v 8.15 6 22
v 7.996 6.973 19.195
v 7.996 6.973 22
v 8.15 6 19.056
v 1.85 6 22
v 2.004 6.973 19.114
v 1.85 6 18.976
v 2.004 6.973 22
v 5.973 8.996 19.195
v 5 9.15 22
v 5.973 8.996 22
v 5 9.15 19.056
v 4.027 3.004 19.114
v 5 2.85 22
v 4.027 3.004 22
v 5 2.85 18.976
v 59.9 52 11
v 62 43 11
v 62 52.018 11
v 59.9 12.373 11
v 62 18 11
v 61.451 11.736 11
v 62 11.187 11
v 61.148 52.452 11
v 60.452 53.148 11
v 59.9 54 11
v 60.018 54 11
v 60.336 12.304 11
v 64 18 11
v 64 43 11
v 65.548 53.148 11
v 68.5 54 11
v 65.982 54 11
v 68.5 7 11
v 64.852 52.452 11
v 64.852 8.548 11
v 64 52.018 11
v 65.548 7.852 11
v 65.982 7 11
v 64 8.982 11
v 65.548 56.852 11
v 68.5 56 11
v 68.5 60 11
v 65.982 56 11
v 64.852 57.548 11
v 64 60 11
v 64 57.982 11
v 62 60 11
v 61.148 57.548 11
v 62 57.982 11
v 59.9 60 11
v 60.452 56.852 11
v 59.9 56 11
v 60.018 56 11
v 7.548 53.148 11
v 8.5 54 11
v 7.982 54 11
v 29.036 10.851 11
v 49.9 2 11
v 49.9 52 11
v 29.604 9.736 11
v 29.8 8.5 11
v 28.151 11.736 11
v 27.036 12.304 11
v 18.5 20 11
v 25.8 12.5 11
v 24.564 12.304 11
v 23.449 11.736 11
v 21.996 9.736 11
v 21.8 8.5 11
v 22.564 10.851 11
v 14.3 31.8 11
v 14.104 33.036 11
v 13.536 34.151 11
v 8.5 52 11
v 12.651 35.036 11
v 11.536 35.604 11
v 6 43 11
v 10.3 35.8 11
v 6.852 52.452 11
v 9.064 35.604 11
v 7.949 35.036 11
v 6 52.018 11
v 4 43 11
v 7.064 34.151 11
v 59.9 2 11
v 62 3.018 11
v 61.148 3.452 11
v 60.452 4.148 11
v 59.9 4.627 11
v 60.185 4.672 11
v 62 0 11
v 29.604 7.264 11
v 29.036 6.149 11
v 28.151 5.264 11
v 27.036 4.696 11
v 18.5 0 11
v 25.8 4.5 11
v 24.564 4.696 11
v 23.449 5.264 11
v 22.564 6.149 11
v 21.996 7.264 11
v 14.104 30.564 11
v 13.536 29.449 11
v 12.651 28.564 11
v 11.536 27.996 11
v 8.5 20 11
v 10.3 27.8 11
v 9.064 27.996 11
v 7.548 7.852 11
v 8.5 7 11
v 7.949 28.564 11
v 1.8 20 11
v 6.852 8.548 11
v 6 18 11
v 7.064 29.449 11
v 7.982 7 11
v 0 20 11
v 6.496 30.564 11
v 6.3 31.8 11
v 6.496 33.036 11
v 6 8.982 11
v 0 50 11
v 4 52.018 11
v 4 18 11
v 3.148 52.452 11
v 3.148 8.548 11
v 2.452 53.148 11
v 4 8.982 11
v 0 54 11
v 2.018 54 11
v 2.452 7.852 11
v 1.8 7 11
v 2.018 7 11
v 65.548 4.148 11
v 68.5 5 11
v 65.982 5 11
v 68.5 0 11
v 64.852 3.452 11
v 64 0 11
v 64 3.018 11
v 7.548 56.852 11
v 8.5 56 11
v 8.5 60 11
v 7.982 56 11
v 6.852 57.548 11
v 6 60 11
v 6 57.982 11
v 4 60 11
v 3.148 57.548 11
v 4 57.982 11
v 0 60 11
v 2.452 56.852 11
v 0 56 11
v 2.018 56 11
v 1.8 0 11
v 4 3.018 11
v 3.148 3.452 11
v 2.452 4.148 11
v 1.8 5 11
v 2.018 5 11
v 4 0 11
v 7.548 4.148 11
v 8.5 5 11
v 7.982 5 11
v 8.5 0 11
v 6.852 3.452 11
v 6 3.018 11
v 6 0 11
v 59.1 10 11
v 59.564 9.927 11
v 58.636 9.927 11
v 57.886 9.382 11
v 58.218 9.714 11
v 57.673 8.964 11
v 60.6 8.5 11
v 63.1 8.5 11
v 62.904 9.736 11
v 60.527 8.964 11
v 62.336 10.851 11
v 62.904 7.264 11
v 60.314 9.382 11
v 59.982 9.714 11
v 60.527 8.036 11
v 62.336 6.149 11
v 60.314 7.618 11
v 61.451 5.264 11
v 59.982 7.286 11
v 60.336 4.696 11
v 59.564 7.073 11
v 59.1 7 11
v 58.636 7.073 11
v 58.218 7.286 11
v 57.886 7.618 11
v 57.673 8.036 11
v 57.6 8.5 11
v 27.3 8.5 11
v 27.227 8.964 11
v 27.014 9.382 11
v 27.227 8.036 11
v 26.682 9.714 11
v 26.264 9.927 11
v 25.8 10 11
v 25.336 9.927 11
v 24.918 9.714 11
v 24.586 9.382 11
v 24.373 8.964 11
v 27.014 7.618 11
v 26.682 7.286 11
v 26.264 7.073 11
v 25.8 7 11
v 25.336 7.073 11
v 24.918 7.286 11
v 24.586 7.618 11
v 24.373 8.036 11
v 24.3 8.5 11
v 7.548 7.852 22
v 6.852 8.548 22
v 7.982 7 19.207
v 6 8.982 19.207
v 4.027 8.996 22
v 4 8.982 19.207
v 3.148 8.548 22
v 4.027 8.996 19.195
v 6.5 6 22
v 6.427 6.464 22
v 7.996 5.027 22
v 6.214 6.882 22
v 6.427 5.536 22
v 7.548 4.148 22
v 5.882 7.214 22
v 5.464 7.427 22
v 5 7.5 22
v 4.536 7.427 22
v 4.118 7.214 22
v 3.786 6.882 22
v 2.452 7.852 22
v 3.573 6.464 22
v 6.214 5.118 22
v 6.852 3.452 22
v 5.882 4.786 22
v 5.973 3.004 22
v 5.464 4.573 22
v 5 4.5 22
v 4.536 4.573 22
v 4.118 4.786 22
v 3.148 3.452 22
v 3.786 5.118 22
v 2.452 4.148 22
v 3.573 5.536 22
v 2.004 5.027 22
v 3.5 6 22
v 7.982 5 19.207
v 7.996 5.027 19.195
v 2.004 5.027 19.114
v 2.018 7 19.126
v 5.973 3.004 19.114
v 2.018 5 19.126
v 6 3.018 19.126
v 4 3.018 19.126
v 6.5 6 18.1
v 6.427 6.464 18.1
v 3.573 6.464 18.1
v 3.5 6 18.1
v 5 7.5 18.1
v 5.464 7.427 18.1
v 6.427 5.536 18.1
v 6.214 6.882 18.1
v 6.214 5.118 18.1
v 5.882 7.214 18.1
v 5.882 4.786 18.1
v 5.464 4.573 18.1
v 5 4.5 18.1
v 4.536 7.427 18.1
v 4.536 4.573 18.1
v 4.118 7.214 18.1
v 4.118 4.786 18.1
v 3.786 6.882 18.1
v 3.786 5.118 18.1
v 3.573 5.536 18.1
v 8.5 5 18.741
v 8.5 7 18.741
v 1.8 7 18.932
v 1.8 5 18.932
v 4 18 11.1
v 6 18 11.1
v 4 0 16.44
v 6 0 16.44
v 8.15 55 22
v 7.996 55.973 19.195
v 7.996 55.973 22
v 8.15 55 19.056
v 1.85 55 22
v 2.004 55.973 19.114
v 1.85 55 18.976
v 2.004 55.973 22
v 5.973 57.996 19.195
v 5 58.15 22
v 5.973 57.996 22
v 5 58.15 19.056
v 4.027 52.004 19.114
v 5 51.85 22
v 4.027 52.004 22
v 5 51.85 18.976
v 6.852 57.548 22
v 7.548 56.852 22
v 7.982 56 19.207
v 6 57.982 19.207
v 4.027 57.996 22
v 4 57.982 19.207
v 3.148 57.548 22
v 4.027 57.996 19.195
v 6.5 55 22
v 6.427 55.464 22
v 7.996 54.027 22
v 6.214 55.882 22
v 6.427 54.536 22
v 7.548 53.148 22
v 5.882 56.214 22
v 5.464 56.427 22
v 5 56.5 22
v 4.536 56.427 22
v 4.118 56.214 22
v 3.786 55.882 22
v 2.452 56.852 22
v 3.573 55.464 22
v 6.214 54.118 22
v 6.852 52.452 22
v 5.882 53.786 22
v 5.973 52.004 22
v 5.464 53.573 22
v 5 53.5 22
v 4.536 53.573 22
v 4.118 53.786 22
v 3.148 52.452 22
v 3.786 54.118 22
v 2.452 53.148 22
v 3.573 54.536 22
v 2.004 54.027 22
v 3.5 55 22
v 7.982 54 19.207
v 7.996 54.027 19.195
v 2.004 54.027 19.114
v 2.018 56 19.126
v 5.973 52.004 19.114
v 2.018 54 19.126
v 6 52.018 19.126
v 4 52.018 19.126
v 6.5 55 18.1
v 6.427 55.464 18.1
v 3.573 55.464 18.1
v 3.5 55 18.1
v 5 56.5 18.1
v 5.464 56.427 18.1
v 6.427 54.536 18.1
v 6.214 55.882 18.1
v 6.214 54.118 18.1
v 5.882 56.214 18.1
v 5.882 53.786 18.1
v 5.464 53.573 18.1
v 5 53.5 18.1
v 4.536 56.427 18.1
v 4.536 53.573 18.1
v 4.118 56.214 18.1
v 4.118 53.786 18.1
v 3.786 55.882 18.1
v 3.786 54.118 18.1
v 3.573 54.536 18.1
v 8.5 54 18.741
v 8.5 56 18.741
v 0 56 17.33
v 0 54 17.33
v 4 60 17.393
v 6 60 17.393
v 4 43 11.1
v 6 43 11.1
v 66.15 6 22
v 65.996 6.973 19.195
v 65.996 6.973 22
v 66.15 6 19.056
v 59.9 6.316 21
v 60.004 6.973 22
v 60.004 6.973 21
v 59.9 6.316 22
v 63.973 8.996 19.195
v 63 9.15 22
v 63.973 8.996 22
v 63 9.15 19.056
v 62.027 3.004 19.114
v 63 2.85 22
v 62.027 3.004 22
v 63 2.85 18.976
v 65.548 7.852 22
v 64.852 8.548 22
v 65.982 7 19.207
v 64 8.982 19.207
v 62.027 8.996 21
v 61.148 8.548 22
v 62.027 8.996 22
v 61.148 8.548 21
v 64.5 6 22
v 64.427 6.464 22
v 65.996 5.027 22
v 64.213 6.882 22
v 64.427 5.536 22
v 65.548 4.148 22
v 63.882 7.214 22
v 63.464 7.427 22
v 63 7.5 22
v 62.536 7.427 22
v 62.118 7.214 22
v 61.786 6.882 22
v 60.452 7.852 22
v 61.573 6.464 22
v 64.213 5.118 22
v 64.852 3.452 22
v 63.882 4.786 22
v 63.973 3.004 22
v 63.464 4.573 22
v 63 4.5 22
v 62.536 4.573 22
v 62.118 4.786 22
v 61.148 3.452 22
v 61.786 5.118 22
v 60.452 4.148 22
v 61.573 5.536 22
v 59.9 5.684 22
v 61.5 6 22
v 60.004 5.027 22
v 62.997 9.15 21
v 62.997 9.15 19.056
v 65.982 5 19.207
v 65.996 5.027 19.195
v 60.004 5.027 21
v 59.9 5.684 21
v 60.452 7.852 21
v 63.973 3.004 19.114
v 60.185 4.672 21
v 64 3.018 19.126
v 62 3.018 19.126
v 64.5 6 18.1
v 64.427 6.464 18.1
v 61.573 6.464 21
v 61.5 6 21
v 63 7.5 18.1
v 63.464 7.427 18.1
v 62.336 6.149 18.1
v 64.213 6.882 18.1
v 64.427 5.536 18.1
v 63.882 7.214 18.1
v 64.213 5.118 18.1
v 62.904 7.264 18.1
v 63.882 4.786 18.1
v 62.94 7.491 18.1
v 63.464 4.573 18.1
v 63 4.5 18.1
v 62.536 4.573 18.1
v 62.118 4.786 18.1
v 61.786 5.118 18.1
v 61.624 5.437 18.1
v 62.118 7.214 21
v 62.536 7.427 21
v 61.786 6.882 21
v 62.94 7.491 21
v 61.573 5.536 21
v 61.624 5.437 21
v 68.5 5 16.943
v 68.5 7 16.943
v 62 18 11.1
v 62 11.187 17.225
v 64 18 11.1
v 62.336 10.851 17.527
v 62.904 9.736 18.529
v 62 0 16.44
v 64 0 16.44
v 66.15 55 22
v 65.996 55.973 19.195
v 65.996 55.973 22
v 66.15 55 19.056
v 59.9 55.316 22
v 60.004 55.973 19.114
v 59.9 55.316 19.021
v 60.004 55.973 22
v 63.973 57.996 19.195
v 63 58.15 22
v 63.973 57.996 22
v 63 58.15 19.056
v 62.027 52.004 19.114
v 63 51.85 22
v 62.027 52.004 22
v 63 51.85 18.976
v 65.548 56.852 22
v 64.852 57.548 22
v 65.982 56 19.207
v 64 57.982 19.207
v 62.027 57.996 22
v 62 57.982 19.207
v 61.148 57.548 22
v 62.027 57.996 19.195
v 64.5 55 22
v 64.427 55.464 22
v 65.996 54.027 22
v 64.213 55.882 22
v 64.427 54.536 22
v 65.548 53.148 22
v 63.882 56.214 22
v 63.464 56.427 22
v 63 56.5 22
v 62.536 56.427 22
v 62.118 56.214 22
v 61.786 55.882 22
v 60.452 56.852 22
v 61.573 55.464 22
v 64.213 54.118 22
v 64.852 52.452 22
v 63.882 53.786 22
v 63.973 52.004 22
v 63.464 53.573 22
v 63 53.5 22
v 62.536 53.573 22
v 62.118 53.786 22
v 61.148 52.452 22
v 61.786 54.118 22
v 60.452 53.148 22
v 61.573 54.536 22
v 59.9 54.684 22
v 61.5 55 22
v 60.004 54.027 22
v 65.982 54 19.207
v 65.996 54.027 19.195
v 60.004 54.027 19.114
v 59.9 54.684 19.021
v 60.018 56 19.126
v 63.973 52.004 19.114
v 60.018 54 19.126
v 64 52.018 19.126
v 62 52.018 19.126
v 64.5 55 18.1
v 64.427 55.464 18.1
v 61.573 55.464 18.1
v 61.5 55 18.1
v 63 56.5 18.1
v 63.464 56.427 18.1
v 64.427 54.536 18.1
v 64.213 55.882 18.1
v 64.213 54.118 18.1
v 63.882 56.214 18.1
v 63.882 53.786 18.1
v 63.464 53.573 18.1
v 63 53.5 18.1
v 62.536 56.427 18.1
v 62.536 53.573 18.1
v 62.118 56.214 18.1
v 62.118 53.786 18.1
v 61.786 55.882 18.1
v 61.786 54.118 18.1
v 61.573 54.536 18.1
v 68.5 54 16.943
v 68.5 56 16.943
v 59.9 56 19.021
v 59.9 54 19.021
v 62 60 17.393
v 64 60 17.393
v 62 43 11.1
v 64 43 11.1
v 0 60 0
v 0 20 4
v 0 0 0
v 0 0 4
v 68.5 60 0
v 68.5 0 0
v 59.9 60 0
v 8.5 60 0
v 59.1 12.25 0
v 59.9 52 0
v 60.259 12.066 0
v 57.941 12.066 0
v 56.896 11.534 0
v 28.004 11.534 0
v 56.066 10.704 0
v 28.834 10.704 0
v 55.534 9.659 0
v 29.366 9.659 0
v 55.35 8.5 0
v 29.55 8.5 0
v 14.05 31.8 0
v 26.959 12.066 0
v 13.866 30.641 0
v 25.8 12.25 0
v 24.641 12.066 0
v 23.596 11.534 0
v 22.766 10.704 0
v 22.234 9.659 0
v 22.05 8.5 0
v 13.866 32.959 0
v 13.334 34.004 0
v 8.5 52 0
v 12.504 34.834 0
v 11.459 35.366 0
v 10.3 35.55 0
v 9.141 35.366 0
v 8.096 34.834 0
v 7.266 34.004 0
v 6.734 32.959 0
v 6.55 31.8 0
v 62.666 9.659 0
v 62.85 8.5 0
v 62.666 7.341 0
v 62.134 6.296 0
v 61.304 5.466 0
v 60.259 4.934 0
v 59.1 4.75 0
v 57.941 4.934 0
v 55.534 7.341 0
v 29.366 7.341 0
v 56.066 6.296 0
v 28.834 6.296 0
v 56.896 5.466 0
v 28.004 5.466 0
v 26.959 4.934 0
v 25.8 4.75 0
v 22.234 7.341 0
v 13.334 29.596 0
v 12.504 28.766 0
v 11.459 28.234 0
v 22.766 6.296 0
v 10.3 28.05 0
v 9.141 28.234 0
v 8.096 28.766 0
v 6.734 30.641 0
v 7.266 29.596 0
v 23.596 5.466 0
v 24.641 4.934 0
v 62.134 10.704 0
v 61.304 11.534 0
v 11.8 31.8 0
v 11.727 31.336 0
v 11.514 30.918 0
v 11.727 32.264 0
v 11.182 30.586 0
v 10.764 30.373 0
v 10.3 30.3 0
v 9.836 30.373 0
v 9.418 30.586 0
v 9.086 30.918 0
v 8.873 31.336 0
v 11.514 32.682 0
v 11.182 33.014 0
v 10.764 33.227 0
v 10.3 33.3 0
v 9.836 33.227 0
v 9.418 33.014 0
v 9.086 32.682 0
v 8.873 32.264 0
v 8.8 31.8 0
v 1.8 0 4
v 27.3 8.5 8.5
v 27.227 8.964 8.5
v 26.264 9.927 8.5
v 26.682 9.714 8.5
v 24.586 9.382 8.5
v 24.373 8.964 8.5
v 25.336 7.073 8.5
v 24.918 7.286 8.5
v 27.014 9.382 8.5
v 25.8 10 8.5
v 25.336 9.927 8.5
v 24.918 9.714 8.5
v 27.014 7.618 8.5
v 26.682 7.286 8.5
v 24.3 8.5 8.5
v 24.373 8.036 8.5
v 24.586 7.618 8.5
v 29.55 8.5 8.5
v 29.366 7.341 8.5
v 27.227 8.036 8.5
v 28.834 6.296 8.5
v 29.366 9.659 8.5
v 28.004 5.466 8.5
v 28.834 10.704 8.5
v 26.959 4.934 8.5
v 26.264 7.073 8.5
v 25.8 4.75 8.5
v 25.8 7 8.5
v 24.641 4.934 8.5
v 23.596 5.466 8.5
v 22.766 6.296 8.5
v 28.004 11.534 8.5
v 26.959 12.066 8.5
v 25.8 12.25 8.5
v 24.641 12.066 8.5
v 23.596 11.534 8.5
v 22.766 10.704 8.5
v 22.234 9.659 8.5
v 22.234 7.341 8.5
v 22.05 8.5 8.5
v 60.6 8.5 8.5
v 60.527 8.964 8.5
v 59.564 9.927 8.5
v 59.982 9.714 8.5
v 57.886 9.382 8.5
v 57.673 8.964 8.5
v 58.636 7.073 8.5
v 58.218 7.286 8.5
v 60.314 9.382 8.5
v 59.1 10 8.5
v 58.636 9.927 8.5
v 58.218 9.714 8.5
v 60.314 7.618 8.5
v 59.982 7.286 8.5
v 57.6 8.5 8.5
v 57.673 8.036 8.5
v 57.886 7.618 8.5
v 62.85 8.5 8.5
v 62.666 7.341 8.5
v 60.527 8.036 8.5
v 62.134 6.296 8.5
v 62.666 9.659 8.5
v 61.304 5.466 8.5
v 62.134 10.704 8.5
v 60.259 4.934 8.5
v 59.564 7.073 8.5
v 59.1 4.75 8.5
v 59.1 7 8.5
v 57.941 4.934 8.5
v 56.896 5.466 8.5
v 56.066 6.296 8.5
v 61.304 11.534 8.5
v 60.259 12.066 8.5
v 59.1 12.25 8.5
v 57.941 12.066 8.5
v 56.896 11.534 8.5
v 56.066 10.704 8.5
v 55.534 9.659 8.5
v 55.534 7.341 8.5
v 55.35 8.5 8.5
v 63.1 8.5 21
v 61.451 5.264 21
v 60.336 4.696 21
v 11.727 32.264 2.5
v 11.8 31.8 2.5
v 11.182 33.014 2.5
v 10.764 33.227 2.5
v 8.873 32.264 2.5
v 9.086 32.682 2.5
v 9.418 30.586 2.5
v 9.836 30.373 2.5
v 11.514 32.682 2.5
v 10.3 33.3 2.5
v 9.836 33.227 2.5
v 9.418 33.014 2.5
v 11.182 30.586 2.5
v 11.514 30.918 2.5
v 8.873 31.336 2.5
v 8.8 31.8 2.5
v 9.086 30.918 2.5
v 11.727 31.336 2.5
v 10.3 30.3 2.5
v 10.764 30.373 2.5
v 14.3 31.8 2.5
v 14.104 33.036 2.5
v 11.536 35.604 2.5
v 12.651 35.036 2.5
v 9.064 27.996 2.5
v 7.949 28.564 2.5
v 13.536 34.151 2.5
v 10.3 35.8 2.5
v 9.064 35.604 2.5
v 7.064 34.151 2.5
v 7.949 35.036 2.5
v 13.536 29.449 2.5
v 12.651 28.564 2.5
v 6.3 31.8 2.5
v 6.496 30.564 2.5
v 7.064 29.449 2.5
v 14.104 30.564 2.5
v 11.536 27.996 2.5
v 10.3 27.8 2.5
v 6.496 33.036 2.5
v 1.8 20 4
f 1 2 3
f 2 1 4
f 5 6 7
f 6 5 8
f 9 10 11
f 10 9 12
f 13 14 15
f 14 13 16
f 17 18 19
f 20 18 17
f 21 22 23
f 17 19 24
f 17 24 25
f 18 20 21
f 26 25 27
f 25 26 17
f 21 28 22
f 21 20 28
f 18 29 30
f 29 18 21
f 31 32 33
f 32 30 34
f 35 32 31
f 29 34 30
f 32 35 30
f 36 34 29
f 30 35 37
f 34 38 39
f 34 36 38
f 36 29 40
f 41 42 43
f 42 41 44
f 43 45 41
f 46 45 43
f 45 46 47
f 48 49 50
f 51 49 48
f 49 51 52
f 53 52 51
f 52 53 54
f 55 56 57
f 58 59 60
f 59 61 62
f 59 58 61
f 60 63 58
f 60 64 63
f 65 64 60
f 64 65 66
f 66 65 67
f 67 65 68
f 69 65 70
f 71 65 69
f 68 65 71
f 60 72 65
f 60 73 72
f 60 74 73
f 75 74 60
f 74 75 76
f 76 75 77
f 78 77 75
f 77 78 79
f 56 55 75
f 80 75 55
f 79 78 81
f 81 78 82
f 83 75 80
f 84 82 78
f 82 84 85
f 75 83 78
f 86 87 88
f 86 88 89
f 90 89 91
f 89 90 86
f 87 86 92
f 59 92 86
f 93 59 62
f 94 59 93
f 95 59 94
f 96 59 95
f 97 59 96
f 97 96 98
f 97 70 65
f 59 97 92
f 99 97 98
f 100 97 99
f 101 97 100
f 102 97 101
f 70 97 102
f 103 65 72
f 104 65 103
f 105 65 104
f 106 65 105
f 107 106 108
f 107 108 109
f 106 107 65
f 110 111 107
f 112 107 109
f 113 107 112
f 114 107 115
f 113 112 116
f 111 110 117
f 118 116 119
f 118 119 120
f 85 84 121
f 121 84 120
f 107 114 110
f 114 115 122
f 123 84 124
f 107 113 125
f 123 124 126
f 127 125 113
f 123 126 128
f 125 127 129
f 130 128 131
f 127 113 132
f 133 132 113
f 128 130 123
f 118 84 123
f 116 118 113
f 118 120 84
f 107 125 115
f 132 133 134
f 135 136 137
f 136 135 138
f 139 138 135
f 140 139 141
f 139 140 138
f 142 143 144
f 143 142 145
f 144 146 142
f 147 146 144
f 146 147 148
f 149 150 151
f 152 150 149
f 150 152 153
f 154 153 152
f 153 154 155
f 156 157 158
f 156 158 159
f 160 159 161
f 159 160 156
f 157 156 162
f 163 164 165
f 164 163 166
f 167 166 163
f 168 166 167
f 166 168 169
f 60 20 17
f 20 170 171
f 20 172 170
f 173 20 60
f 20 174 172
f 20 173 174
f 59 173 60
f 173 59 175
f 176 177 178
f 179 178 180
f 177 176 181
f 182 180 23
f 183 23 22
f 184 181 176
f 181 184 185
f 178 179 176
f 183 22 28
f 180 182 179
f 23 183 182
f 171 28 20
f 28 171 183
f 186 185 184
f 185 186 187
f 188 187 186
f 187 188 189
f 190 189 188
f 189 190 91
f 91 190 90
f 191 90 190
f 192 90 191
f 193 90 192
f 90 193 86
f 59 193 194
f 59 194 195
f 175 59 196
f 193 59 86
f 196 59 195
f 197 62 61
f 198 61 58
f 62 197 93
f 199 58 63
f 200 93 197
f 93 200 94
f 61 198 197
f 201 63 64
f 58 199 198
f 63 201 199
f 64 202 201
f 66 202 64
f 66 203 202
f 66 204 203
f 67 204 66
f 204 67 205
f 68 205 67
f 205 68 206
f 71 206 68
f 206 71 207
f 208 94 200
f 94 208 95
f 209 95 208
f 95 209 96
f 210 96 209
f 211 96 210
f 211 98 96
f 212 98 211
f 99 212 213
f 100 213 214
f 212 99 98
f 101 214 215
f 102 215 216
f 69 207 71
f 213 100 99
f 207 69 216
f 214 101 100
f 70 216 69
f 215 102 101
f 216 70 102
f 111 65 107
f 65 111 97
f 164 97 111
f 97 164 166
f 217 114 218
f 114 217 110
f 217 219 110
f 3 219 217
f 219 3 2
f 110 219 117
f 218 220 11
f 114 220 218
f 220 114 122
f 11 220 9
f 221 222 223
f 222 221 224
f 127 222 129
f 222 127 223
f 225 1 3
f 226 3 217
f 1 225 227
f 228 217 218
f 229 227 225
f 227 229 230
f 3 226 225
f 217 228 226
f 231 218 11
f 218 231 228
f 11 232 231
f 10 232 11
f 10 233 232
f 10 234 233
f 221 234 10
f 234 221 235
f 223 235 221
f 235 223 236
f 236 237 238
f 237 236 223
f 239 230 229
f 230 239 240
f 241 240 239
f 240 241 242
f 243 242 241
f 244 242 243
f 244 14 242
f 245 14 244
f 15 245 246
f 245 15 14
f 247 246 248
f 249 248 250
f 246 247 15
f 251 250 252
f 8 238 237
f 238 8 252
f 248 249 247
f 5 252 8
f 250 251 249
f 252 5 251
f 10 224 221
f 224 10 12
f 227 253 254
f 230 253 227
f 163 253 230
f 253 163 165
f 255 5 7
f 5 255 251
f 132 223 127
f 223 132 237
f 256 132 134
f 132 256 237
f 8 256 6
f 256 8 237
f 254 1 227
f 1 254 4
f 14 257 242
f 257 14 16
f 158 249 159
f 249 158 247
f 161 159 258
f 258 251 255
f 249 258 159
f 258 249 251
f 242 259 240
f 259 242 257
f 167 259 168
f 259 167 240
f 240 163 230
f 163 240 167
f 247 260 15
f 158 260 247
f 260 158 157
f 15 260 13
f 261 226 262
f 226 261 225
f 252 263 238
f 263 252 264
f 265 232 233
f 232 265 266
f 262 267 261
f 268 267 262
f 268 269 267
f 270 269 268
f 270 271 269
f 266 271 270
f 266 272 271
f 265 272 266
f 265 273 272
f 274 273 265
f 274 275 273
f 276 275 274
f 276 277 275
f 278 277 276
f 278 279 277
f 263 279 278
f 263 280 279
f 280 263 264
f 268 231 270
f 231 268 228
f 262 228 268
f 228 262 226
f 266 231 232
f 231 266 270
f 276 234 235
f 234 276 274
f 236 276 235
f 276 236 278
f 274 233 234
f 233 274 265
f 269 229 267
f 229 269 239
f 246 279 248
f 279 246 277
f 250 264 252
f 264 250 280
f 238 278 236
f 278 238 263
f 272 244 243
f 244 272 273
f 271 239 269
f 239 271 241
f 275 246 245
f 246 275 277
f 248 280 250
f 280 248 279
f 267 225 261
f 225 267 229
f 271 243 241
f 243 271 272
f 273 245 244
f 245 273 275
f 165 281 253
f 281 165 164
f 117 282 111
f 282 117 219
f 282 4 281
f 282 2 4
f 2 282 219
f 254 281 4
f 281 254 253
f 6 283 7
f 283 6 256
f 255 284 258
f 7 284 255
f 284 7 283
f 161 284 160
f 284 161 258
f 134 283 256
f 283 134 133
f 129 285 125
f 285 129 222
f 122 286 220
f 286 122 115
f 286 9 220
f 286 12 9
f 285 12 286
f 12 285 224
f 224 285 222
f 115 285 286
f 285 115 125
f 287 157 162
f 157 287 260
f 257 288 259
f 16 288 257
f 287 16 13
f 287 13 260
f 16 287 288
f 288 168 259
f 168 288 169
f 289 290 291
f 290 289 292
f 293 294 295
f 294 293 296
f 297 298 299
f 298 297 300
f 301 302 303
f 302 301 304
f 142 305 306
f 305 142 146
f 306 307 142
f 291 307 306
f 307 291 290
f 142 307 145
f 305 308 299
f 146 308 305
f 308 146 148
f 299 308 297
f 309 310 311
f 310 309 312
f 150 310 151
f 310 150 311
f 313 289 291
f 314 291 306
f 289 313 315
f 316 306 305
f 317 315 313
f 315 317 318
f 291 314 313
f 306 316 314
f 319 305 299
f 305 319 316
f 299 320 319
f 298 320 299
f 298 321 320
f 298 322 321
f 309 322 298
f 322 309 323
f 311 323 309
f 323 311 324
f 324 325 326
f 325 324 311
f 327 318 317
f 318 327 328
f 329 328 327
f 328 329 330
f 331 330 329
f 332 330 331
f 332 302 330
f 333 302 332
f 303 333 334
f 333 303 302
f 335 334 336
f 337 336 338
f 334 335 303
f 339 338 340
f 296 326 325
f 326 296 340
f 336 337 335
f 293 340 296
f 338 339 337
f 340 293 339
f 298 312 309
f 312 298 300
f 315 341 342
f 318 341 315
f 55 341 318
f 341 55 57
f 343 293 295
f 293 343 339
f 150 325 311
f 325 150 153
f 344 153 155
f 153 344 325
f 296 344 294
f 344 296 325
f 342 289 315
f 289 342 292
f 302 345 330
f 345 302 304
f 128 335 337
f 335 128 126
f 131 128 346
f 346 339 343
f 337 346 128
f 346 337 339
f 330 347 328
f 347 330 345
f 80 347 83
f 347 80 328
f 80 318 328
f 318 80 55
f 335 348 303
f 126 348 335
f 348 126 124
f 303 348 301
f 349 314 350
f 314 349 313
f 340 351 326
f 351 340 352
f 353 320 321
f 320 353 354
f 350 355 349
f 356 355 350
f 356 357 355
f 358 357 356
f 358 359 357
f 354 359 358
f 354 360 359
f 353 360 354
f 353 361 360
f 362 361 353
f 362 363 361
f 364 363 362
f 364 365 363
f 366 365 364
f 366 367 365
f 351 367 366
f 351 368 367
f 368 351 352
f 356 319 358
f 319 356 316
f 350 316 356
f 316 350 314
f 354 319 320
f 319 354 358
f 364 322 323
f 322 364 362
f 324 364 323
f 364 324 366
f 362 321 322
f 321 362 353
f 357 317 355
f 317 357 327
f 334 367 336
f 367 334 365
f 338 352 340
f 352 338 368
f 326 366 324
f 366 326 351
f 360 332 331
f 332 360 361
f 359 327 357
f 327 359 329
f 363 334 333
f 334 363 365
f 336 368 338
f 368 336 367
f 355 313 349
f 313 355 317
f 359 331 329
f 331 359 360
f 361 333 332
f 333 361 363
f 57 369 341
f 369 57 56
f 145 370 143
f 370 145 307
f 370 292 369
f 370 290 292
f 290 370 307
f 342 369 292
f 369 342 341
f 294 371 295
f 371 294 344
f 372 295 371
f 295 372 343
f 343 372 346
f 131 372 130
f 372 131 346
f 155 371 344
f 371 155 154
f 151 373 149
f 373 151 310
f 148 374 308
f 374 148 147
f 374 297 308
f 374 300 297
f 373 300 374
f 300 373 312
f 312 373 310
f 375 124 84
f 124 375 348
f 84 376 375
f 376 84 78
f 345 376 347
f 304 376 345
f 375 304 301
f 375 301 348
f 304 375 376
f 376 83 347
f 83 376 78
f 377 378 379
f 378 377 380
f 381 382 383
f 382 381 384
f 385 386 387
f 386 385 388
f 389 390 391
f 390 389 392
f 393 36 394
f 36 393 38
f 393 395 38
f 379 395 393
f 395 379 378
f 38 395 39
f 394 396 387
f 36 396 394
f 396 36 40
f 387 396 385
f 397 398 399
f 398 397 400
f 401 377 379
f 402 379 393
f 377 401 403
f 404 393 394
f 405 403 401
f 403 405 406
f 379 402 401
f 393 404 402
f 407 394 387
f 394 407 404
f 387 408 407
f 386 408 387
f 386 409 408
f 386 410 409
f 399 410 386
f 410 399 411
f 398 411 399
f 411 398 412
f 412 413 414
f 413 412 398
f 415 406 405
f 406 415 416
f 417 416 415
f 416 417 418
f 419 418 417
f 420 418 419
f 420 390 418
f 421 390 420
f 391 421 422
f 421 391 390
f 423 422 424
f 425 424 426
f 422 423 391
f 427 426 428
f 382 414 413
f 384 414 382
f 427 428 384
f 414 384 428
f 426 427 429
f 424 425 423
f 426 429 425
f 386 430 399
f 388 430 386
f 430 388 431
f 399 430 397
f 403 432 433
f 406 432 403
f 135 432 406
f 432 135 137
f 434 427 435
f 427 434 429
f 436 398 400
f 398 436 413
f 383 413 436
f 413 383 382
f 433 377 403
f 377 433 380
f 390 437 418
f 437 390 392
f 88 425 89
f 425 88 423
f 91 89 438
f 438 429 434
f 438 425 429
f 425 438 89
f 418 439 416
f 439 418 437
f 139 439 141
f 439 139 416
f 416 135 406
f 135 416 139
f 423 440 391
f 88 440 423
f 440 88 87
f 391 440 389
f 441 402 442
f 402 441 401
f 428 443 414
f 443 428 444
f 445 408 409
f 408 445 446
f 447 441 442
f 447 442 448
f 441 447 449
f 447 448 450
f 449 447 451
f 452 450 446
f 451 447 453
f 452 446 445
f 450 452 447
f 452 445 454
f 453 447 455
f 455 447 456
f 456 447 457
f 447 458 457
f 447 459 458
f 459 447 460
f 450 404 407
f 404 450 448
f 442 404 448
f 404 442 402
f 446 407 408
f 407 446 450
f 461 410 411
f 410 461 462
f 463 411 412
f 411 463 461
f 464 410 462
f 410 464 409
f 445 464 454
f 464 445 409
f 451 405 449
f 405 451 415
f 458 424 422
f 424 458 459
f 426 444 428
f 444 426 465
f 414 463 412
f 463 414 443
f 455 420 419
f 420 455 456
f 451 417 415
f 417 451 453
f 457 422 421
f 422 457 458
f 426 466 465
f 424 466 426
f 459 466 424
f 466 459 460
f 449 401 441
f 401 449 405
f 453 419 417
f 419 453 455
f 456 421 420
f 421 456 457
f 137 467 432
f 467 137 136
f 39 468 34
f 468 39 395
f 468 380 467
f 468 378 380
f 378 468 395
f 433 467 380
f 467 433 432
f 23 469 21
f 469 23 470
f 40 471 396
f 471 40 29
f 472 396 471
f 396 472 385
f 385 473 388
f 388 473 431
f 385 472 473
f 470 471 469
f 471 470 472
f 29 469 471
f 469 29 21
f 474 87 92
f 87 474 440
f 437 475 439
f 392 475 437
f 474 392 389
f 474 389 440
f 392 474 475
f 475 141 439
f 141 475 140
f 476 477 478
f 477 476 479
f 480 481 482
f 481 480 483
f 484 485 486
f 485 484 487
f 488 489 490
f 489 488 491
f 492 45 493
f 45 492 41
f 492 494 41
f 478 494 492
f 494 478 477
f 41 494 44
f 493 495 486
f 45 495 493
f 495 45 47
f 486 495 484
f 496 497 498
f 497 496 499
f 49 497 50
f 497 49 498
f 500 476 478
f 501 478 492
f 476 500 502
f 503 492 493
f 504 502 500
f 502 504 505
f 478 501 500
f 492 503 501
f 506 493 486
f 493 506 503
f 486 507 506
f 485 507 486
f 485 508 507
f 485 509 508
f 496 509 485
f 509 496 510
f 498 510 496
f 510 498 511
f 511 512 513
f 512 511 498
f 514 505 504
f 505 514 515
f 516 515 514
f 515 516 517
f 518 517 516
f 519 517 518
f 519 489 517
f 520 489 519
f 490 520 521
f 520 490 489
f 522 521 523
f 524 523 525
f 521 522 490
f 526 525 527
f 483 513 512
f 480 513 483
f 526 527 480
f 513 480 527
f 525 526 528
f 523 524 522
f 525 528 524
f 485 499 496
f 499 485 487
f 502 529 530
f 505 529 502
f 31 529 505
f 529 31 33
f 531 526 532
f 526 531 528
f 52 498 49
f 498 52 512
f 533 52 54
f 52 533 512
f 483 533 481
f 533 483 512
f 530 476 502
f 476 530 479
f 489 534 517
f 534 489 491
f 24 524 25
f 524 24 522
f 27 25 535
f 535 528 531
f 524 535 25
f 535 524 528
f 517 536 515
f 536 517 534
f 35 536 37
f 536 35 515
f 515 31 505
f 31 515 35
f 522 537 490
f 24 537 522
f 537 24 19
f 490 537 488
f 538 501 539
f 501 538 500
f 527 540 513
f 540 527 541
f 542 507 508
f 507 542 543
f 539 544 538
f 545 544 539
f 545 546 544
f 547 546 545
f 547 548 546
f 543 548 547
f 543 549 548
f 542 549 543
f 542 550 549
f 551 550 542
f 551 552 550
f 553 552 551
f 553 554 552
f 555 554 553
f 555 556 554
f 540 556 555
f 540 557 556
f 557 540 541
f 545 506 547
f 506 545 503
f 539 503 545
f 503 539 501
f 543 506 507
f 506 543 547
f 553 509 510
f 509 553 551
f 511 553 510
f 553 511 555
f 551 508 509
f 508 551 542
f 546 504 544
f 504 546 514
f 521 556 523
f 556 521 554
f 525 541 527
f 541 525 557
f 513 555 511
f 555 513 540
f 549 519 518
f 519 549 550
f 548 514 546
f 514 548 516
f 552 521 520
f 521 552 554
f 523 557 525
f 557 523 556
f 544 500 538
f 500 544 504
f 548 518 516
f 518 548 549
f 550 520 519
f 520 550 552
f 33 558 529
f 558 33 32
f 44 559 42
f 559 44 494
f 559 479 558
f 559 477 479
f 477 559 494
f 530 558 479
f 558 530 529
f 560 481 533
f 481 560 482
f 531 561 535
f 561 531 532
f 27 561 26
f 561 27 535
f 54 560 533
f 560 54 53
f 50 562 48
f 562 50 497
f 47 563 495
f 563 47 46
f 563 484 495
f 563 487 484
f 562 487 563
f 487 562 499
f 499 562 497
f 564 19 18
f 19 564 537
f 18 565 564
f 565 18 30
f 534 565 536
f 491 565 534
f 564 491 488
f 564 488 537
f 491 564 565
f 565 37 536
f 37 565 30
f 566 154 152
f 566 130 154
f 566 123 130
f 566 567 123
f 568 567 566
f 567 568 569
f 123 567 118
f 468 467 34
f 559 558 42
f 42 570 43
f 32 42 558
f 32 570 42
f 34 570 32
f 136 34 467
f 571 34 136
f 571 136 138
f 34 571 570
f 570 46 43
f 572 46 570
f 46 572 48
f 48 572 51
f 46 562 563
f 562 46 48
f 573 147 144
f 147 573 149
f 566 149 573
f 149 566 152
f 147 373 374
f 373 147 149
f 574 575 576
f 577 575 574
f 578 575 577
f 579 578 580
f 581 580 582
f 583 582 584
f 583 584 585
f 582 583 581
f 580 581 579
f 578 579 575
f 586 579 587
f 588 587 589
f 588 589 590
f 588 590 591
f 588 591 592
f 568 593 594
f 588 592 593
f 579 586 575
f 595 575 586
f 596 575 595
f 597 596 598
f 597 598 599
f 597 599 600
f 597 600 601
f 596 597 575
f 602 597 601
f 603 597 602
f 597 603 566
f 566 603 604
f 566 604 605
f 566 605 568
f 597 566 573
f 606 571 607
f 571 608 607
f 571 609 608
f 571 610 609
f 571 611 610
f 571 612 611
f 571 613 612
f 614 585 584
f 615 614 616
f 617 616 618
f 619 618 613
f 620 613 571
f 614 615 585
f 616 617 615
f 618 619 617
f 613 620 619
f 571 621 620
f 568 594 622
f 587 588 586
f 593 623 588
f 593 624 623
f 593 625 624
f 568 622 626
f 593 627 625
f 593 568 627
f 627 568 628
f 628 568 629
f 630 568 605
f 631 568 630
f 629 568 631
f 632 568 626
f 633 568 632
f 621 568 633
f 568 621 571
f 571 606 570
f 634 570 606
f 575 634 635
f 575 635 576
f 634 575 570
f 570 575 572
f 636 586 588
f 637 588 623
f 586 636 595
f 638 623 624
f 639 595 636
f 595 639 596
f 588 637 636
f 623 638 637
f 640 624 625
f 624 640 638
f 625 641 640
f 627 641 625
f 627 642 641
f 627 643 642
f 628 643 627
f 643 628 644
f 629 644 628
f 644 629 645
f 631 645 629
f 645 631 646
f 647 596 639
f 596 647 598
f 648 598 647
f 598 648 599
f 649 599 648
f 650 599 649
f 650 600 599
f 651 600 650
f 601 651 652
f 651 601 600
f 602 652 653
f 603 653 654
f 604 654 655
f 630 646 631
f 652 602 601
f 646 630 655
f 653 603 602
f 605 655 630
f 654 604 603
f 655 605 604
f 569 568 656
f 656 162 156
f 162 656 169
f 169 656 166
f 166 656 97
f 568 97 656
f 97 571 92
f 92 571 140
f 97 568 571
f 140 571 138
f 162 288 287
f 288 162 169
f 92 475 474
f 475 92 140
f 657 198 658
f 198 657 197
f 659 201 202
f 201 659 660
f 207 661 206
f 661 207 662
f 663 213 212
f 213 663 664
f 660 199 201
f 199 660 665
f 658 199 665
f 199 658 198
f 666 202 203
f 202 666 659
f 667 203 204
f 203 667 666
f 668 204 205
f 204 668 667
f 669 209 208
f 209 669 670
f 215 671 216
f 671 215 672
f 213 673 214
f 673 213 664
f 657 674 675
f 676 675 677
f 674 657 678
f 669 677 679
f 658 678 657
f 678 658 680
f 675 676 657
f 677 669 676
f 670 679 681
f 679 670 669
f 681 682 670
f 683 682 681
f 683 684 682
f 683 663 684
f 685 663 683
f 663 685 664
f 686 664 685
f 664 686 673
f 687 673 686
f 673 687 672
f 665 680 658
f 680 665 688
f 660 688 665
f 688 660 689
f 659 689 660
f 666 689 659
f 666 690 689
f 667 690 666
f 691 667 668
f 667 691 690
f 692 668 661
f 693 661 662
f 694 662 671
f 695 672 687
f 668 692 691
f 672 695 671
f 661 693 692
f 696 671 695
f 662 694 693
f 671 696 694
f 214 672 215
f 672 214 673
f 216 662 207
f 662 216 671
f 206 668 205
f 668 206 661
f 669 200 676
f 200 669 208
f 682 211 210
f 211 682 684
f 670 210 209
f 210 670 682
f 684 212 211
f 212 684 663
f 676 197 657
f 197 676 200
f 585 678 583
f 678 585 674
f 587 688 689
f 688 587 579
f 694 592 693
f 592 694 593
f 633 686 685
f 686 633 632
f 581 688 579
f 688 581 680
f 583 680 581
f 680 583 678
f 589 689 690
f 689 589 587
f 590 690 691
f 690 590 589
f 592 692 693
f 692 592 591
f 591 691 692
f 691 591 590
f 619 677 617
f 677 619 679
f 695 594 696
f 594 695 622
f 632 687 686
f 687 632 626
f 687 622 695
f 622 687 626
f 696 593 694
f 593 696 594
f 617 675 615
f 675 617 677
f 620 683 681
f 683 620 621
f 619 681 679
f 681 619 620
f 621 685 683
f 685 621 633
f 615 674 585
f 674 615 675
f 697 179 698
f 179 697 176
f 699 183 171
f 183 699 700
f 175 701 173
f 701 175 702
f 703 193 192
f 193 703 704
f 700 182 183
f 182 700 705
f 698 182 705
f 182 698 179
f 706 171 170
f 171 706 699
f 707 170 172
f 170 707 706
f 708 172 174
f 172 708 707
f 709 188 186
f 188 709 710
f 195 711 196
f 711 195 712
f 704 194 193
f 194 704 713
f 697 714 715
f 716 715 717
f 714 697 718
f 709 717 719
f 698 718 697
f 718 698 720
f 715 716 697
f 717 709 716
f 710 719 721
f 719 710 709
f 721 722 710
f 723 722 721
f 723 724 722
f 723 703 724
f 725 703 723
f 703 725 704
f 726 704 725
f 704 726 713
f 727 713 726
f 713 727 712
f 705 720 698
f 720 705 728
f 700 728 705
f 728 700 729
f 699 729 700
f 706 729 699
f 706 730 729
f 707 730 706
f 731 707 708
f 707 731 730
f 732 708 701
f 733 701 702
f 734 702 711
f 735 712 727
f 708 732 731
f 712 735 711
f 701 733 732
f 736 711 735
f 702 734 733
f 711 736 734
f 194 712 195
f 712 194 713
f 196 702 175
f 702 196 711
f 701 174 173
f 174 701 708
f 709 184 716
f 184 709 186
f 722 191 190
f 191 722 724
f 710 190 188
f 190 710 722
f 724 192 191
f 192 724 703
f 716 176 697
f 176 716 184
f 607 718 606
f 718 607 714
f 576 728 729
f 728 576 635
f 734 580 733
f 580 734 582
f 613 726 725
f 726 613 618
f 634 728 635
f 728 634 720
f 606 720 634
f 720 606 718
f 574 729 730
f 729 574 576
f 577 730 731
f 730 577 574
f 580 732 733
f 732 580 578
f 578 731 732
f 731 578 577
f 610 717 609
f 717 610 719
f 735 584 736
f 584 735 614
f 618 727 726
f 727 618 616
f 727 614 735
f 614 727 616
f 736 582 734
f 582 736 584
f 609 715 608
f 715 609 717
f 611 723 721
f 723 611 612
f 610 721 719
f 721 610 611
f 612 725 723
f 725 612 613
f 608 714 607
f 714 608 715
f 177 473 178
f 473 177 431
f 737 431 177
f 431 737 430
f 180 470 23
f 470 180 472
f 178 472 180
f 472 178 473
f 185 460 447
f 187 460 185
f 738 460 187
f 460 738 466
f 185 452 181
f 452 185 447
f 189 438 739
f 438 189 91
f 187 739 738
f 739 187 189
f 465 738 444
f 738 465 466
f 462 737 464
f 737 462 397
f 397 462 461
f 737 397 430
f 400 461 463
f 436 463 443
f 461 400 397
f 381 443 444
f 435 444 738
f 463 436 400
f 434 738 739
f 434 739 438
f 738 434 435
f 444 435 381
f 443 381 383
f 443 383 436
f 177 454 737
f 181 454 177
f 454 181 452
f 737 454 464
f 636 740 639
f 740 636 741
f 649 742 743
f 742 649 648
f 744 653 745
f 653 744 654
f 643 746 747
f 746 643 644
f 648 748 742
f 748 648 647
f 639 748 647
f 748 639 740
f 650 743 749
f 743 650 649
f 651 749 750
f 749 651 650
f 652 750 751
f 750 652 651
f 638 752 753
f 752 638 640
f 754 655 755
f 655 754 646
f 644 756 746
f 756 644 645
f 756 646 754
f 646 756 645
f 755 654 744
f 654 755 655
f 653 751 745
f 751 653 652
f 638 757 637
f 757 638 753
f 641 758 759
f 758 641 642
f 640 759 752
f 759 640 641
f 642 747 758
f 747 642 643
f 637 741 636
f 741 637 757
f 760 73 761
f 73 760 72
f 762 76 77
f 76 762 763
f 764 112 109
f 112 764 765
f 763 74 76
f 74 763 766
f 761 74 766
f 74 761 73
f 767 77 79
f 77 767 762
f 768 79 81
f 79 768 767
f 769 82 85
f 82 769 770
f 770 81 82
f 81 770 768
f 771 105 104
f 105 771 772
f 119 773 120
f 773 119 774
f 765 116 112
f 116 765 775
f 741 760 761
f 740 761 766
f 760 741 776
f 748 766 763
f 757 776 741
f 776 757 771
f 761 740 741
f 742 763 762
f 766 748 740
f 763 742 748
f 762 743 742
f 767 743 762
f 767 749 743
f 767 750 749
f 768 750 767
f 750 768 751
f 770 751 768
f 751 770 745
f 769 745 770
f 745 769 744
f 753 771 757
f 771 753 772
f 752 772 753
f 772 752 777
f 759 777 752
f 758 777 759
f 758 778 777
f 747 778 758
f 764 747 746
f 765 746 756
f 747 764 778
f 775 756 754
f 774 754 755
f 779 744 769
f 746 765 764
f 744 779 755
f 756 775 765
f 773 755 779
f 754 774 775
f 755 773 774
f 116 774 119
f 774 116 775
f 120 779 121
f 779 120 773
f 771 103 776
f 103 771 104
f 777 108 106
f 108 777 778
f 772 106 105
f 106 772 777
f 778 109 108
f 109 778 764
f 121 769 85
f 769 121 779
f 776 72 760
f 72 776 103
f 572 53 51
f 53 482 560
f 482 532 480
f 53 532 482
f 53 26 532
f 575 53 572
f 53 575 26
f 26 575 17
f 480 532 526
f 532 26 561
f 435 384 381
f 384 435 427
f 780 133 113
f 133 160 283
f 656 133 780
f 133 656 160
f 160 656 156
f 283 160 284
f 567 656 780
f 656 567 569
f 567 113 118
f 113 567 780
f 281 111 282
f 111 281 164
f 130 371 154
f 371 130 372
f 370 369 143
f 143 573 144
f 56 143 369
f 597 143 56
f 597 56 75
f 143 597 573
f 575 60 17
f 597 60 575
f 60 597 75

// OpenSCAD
pi_mount();



module pi_mount() {

    difference() {
        union() {
            cube([68.5, 60, 11]);

            x_off = 5;
            y_off = 6;
            for (x = [x_off, x_off+58]) {
                for (y = [y_off, y_off+49]) {
                    translate([x, y, 11]) pi_hole(h=11);
                }
            }
        }

        translate([6, 8.5, 0]) union() {
            translate([33.3-13.5, 0, 8.5]) gc_hole(h=10);
            translate([66.6-13.5, 0, 8.5]) gc_hole(h=10);
            translate([17.8-13.5, 23.3, 0]) gc_hole(h=10);
        }

        mask();
    }
    
    module mask() {
        translate([-10, -10, -5])
        cube([100, 10, 30]);
        translate([-10, 60, -5])
        cube([100, 10, 30]);
        translate([68.5, -5, -5])
        cube([10, 70, 30]);
        translate([49.9, 2, 11])
        cube([10, 100, 20]);
        translate([-8.2, 0, 4])
        cube([10, 20, 30]);
        translate([8.5, 0, 11])
        cube([10, 20, 30]);
        translate([-10, 50, 11])
        cube([10, 20, 30]);
        translate([8.5, 60-8, 0])
        cube([51.4, 8, 30]);
    }

    module gc_hole(h=1) {
        $fn = 20;
        cylinder(h=h, d=3);
        translate([0, 0, -h]) cylinder(h=h, d=7.5);
        translate([0, 0, 2.5]) cylinder(h=h, d=8);
    }

    module pi_hole(h=5) {
        $fn = 20;
        difference(){
            cylinder(h=h, d=6.3);
            translate([0, 0, h-3.9]) cylinder(h=4, d=3);
        }
        hull() {
            translate([2, -1, 0])
            cube([0.1, 2, h-2]);
            translate([2, -1, 0])
            cube([10, 2, 0.1]);
        }
        hull() {
            translate([-2, -1, 0])
            cube([0.1, 2, h-2]);
            translate([-12, -1, 0])
            cube([10, 2, 0.1]);
        }
        hull() {
            translate([-1, 2, 0])
            cube([2, 0.1, h-2]);
            translate([-1, 2, 0])
            cube([2, 10, 0.1]);
        }
        hull() {
            translate([-1, -2, 0])
            cube([2, 0.1, h-2]);
            translate([-1, -12, 0])
            cube([2, 10, 0.1]);
        }
    }
}
